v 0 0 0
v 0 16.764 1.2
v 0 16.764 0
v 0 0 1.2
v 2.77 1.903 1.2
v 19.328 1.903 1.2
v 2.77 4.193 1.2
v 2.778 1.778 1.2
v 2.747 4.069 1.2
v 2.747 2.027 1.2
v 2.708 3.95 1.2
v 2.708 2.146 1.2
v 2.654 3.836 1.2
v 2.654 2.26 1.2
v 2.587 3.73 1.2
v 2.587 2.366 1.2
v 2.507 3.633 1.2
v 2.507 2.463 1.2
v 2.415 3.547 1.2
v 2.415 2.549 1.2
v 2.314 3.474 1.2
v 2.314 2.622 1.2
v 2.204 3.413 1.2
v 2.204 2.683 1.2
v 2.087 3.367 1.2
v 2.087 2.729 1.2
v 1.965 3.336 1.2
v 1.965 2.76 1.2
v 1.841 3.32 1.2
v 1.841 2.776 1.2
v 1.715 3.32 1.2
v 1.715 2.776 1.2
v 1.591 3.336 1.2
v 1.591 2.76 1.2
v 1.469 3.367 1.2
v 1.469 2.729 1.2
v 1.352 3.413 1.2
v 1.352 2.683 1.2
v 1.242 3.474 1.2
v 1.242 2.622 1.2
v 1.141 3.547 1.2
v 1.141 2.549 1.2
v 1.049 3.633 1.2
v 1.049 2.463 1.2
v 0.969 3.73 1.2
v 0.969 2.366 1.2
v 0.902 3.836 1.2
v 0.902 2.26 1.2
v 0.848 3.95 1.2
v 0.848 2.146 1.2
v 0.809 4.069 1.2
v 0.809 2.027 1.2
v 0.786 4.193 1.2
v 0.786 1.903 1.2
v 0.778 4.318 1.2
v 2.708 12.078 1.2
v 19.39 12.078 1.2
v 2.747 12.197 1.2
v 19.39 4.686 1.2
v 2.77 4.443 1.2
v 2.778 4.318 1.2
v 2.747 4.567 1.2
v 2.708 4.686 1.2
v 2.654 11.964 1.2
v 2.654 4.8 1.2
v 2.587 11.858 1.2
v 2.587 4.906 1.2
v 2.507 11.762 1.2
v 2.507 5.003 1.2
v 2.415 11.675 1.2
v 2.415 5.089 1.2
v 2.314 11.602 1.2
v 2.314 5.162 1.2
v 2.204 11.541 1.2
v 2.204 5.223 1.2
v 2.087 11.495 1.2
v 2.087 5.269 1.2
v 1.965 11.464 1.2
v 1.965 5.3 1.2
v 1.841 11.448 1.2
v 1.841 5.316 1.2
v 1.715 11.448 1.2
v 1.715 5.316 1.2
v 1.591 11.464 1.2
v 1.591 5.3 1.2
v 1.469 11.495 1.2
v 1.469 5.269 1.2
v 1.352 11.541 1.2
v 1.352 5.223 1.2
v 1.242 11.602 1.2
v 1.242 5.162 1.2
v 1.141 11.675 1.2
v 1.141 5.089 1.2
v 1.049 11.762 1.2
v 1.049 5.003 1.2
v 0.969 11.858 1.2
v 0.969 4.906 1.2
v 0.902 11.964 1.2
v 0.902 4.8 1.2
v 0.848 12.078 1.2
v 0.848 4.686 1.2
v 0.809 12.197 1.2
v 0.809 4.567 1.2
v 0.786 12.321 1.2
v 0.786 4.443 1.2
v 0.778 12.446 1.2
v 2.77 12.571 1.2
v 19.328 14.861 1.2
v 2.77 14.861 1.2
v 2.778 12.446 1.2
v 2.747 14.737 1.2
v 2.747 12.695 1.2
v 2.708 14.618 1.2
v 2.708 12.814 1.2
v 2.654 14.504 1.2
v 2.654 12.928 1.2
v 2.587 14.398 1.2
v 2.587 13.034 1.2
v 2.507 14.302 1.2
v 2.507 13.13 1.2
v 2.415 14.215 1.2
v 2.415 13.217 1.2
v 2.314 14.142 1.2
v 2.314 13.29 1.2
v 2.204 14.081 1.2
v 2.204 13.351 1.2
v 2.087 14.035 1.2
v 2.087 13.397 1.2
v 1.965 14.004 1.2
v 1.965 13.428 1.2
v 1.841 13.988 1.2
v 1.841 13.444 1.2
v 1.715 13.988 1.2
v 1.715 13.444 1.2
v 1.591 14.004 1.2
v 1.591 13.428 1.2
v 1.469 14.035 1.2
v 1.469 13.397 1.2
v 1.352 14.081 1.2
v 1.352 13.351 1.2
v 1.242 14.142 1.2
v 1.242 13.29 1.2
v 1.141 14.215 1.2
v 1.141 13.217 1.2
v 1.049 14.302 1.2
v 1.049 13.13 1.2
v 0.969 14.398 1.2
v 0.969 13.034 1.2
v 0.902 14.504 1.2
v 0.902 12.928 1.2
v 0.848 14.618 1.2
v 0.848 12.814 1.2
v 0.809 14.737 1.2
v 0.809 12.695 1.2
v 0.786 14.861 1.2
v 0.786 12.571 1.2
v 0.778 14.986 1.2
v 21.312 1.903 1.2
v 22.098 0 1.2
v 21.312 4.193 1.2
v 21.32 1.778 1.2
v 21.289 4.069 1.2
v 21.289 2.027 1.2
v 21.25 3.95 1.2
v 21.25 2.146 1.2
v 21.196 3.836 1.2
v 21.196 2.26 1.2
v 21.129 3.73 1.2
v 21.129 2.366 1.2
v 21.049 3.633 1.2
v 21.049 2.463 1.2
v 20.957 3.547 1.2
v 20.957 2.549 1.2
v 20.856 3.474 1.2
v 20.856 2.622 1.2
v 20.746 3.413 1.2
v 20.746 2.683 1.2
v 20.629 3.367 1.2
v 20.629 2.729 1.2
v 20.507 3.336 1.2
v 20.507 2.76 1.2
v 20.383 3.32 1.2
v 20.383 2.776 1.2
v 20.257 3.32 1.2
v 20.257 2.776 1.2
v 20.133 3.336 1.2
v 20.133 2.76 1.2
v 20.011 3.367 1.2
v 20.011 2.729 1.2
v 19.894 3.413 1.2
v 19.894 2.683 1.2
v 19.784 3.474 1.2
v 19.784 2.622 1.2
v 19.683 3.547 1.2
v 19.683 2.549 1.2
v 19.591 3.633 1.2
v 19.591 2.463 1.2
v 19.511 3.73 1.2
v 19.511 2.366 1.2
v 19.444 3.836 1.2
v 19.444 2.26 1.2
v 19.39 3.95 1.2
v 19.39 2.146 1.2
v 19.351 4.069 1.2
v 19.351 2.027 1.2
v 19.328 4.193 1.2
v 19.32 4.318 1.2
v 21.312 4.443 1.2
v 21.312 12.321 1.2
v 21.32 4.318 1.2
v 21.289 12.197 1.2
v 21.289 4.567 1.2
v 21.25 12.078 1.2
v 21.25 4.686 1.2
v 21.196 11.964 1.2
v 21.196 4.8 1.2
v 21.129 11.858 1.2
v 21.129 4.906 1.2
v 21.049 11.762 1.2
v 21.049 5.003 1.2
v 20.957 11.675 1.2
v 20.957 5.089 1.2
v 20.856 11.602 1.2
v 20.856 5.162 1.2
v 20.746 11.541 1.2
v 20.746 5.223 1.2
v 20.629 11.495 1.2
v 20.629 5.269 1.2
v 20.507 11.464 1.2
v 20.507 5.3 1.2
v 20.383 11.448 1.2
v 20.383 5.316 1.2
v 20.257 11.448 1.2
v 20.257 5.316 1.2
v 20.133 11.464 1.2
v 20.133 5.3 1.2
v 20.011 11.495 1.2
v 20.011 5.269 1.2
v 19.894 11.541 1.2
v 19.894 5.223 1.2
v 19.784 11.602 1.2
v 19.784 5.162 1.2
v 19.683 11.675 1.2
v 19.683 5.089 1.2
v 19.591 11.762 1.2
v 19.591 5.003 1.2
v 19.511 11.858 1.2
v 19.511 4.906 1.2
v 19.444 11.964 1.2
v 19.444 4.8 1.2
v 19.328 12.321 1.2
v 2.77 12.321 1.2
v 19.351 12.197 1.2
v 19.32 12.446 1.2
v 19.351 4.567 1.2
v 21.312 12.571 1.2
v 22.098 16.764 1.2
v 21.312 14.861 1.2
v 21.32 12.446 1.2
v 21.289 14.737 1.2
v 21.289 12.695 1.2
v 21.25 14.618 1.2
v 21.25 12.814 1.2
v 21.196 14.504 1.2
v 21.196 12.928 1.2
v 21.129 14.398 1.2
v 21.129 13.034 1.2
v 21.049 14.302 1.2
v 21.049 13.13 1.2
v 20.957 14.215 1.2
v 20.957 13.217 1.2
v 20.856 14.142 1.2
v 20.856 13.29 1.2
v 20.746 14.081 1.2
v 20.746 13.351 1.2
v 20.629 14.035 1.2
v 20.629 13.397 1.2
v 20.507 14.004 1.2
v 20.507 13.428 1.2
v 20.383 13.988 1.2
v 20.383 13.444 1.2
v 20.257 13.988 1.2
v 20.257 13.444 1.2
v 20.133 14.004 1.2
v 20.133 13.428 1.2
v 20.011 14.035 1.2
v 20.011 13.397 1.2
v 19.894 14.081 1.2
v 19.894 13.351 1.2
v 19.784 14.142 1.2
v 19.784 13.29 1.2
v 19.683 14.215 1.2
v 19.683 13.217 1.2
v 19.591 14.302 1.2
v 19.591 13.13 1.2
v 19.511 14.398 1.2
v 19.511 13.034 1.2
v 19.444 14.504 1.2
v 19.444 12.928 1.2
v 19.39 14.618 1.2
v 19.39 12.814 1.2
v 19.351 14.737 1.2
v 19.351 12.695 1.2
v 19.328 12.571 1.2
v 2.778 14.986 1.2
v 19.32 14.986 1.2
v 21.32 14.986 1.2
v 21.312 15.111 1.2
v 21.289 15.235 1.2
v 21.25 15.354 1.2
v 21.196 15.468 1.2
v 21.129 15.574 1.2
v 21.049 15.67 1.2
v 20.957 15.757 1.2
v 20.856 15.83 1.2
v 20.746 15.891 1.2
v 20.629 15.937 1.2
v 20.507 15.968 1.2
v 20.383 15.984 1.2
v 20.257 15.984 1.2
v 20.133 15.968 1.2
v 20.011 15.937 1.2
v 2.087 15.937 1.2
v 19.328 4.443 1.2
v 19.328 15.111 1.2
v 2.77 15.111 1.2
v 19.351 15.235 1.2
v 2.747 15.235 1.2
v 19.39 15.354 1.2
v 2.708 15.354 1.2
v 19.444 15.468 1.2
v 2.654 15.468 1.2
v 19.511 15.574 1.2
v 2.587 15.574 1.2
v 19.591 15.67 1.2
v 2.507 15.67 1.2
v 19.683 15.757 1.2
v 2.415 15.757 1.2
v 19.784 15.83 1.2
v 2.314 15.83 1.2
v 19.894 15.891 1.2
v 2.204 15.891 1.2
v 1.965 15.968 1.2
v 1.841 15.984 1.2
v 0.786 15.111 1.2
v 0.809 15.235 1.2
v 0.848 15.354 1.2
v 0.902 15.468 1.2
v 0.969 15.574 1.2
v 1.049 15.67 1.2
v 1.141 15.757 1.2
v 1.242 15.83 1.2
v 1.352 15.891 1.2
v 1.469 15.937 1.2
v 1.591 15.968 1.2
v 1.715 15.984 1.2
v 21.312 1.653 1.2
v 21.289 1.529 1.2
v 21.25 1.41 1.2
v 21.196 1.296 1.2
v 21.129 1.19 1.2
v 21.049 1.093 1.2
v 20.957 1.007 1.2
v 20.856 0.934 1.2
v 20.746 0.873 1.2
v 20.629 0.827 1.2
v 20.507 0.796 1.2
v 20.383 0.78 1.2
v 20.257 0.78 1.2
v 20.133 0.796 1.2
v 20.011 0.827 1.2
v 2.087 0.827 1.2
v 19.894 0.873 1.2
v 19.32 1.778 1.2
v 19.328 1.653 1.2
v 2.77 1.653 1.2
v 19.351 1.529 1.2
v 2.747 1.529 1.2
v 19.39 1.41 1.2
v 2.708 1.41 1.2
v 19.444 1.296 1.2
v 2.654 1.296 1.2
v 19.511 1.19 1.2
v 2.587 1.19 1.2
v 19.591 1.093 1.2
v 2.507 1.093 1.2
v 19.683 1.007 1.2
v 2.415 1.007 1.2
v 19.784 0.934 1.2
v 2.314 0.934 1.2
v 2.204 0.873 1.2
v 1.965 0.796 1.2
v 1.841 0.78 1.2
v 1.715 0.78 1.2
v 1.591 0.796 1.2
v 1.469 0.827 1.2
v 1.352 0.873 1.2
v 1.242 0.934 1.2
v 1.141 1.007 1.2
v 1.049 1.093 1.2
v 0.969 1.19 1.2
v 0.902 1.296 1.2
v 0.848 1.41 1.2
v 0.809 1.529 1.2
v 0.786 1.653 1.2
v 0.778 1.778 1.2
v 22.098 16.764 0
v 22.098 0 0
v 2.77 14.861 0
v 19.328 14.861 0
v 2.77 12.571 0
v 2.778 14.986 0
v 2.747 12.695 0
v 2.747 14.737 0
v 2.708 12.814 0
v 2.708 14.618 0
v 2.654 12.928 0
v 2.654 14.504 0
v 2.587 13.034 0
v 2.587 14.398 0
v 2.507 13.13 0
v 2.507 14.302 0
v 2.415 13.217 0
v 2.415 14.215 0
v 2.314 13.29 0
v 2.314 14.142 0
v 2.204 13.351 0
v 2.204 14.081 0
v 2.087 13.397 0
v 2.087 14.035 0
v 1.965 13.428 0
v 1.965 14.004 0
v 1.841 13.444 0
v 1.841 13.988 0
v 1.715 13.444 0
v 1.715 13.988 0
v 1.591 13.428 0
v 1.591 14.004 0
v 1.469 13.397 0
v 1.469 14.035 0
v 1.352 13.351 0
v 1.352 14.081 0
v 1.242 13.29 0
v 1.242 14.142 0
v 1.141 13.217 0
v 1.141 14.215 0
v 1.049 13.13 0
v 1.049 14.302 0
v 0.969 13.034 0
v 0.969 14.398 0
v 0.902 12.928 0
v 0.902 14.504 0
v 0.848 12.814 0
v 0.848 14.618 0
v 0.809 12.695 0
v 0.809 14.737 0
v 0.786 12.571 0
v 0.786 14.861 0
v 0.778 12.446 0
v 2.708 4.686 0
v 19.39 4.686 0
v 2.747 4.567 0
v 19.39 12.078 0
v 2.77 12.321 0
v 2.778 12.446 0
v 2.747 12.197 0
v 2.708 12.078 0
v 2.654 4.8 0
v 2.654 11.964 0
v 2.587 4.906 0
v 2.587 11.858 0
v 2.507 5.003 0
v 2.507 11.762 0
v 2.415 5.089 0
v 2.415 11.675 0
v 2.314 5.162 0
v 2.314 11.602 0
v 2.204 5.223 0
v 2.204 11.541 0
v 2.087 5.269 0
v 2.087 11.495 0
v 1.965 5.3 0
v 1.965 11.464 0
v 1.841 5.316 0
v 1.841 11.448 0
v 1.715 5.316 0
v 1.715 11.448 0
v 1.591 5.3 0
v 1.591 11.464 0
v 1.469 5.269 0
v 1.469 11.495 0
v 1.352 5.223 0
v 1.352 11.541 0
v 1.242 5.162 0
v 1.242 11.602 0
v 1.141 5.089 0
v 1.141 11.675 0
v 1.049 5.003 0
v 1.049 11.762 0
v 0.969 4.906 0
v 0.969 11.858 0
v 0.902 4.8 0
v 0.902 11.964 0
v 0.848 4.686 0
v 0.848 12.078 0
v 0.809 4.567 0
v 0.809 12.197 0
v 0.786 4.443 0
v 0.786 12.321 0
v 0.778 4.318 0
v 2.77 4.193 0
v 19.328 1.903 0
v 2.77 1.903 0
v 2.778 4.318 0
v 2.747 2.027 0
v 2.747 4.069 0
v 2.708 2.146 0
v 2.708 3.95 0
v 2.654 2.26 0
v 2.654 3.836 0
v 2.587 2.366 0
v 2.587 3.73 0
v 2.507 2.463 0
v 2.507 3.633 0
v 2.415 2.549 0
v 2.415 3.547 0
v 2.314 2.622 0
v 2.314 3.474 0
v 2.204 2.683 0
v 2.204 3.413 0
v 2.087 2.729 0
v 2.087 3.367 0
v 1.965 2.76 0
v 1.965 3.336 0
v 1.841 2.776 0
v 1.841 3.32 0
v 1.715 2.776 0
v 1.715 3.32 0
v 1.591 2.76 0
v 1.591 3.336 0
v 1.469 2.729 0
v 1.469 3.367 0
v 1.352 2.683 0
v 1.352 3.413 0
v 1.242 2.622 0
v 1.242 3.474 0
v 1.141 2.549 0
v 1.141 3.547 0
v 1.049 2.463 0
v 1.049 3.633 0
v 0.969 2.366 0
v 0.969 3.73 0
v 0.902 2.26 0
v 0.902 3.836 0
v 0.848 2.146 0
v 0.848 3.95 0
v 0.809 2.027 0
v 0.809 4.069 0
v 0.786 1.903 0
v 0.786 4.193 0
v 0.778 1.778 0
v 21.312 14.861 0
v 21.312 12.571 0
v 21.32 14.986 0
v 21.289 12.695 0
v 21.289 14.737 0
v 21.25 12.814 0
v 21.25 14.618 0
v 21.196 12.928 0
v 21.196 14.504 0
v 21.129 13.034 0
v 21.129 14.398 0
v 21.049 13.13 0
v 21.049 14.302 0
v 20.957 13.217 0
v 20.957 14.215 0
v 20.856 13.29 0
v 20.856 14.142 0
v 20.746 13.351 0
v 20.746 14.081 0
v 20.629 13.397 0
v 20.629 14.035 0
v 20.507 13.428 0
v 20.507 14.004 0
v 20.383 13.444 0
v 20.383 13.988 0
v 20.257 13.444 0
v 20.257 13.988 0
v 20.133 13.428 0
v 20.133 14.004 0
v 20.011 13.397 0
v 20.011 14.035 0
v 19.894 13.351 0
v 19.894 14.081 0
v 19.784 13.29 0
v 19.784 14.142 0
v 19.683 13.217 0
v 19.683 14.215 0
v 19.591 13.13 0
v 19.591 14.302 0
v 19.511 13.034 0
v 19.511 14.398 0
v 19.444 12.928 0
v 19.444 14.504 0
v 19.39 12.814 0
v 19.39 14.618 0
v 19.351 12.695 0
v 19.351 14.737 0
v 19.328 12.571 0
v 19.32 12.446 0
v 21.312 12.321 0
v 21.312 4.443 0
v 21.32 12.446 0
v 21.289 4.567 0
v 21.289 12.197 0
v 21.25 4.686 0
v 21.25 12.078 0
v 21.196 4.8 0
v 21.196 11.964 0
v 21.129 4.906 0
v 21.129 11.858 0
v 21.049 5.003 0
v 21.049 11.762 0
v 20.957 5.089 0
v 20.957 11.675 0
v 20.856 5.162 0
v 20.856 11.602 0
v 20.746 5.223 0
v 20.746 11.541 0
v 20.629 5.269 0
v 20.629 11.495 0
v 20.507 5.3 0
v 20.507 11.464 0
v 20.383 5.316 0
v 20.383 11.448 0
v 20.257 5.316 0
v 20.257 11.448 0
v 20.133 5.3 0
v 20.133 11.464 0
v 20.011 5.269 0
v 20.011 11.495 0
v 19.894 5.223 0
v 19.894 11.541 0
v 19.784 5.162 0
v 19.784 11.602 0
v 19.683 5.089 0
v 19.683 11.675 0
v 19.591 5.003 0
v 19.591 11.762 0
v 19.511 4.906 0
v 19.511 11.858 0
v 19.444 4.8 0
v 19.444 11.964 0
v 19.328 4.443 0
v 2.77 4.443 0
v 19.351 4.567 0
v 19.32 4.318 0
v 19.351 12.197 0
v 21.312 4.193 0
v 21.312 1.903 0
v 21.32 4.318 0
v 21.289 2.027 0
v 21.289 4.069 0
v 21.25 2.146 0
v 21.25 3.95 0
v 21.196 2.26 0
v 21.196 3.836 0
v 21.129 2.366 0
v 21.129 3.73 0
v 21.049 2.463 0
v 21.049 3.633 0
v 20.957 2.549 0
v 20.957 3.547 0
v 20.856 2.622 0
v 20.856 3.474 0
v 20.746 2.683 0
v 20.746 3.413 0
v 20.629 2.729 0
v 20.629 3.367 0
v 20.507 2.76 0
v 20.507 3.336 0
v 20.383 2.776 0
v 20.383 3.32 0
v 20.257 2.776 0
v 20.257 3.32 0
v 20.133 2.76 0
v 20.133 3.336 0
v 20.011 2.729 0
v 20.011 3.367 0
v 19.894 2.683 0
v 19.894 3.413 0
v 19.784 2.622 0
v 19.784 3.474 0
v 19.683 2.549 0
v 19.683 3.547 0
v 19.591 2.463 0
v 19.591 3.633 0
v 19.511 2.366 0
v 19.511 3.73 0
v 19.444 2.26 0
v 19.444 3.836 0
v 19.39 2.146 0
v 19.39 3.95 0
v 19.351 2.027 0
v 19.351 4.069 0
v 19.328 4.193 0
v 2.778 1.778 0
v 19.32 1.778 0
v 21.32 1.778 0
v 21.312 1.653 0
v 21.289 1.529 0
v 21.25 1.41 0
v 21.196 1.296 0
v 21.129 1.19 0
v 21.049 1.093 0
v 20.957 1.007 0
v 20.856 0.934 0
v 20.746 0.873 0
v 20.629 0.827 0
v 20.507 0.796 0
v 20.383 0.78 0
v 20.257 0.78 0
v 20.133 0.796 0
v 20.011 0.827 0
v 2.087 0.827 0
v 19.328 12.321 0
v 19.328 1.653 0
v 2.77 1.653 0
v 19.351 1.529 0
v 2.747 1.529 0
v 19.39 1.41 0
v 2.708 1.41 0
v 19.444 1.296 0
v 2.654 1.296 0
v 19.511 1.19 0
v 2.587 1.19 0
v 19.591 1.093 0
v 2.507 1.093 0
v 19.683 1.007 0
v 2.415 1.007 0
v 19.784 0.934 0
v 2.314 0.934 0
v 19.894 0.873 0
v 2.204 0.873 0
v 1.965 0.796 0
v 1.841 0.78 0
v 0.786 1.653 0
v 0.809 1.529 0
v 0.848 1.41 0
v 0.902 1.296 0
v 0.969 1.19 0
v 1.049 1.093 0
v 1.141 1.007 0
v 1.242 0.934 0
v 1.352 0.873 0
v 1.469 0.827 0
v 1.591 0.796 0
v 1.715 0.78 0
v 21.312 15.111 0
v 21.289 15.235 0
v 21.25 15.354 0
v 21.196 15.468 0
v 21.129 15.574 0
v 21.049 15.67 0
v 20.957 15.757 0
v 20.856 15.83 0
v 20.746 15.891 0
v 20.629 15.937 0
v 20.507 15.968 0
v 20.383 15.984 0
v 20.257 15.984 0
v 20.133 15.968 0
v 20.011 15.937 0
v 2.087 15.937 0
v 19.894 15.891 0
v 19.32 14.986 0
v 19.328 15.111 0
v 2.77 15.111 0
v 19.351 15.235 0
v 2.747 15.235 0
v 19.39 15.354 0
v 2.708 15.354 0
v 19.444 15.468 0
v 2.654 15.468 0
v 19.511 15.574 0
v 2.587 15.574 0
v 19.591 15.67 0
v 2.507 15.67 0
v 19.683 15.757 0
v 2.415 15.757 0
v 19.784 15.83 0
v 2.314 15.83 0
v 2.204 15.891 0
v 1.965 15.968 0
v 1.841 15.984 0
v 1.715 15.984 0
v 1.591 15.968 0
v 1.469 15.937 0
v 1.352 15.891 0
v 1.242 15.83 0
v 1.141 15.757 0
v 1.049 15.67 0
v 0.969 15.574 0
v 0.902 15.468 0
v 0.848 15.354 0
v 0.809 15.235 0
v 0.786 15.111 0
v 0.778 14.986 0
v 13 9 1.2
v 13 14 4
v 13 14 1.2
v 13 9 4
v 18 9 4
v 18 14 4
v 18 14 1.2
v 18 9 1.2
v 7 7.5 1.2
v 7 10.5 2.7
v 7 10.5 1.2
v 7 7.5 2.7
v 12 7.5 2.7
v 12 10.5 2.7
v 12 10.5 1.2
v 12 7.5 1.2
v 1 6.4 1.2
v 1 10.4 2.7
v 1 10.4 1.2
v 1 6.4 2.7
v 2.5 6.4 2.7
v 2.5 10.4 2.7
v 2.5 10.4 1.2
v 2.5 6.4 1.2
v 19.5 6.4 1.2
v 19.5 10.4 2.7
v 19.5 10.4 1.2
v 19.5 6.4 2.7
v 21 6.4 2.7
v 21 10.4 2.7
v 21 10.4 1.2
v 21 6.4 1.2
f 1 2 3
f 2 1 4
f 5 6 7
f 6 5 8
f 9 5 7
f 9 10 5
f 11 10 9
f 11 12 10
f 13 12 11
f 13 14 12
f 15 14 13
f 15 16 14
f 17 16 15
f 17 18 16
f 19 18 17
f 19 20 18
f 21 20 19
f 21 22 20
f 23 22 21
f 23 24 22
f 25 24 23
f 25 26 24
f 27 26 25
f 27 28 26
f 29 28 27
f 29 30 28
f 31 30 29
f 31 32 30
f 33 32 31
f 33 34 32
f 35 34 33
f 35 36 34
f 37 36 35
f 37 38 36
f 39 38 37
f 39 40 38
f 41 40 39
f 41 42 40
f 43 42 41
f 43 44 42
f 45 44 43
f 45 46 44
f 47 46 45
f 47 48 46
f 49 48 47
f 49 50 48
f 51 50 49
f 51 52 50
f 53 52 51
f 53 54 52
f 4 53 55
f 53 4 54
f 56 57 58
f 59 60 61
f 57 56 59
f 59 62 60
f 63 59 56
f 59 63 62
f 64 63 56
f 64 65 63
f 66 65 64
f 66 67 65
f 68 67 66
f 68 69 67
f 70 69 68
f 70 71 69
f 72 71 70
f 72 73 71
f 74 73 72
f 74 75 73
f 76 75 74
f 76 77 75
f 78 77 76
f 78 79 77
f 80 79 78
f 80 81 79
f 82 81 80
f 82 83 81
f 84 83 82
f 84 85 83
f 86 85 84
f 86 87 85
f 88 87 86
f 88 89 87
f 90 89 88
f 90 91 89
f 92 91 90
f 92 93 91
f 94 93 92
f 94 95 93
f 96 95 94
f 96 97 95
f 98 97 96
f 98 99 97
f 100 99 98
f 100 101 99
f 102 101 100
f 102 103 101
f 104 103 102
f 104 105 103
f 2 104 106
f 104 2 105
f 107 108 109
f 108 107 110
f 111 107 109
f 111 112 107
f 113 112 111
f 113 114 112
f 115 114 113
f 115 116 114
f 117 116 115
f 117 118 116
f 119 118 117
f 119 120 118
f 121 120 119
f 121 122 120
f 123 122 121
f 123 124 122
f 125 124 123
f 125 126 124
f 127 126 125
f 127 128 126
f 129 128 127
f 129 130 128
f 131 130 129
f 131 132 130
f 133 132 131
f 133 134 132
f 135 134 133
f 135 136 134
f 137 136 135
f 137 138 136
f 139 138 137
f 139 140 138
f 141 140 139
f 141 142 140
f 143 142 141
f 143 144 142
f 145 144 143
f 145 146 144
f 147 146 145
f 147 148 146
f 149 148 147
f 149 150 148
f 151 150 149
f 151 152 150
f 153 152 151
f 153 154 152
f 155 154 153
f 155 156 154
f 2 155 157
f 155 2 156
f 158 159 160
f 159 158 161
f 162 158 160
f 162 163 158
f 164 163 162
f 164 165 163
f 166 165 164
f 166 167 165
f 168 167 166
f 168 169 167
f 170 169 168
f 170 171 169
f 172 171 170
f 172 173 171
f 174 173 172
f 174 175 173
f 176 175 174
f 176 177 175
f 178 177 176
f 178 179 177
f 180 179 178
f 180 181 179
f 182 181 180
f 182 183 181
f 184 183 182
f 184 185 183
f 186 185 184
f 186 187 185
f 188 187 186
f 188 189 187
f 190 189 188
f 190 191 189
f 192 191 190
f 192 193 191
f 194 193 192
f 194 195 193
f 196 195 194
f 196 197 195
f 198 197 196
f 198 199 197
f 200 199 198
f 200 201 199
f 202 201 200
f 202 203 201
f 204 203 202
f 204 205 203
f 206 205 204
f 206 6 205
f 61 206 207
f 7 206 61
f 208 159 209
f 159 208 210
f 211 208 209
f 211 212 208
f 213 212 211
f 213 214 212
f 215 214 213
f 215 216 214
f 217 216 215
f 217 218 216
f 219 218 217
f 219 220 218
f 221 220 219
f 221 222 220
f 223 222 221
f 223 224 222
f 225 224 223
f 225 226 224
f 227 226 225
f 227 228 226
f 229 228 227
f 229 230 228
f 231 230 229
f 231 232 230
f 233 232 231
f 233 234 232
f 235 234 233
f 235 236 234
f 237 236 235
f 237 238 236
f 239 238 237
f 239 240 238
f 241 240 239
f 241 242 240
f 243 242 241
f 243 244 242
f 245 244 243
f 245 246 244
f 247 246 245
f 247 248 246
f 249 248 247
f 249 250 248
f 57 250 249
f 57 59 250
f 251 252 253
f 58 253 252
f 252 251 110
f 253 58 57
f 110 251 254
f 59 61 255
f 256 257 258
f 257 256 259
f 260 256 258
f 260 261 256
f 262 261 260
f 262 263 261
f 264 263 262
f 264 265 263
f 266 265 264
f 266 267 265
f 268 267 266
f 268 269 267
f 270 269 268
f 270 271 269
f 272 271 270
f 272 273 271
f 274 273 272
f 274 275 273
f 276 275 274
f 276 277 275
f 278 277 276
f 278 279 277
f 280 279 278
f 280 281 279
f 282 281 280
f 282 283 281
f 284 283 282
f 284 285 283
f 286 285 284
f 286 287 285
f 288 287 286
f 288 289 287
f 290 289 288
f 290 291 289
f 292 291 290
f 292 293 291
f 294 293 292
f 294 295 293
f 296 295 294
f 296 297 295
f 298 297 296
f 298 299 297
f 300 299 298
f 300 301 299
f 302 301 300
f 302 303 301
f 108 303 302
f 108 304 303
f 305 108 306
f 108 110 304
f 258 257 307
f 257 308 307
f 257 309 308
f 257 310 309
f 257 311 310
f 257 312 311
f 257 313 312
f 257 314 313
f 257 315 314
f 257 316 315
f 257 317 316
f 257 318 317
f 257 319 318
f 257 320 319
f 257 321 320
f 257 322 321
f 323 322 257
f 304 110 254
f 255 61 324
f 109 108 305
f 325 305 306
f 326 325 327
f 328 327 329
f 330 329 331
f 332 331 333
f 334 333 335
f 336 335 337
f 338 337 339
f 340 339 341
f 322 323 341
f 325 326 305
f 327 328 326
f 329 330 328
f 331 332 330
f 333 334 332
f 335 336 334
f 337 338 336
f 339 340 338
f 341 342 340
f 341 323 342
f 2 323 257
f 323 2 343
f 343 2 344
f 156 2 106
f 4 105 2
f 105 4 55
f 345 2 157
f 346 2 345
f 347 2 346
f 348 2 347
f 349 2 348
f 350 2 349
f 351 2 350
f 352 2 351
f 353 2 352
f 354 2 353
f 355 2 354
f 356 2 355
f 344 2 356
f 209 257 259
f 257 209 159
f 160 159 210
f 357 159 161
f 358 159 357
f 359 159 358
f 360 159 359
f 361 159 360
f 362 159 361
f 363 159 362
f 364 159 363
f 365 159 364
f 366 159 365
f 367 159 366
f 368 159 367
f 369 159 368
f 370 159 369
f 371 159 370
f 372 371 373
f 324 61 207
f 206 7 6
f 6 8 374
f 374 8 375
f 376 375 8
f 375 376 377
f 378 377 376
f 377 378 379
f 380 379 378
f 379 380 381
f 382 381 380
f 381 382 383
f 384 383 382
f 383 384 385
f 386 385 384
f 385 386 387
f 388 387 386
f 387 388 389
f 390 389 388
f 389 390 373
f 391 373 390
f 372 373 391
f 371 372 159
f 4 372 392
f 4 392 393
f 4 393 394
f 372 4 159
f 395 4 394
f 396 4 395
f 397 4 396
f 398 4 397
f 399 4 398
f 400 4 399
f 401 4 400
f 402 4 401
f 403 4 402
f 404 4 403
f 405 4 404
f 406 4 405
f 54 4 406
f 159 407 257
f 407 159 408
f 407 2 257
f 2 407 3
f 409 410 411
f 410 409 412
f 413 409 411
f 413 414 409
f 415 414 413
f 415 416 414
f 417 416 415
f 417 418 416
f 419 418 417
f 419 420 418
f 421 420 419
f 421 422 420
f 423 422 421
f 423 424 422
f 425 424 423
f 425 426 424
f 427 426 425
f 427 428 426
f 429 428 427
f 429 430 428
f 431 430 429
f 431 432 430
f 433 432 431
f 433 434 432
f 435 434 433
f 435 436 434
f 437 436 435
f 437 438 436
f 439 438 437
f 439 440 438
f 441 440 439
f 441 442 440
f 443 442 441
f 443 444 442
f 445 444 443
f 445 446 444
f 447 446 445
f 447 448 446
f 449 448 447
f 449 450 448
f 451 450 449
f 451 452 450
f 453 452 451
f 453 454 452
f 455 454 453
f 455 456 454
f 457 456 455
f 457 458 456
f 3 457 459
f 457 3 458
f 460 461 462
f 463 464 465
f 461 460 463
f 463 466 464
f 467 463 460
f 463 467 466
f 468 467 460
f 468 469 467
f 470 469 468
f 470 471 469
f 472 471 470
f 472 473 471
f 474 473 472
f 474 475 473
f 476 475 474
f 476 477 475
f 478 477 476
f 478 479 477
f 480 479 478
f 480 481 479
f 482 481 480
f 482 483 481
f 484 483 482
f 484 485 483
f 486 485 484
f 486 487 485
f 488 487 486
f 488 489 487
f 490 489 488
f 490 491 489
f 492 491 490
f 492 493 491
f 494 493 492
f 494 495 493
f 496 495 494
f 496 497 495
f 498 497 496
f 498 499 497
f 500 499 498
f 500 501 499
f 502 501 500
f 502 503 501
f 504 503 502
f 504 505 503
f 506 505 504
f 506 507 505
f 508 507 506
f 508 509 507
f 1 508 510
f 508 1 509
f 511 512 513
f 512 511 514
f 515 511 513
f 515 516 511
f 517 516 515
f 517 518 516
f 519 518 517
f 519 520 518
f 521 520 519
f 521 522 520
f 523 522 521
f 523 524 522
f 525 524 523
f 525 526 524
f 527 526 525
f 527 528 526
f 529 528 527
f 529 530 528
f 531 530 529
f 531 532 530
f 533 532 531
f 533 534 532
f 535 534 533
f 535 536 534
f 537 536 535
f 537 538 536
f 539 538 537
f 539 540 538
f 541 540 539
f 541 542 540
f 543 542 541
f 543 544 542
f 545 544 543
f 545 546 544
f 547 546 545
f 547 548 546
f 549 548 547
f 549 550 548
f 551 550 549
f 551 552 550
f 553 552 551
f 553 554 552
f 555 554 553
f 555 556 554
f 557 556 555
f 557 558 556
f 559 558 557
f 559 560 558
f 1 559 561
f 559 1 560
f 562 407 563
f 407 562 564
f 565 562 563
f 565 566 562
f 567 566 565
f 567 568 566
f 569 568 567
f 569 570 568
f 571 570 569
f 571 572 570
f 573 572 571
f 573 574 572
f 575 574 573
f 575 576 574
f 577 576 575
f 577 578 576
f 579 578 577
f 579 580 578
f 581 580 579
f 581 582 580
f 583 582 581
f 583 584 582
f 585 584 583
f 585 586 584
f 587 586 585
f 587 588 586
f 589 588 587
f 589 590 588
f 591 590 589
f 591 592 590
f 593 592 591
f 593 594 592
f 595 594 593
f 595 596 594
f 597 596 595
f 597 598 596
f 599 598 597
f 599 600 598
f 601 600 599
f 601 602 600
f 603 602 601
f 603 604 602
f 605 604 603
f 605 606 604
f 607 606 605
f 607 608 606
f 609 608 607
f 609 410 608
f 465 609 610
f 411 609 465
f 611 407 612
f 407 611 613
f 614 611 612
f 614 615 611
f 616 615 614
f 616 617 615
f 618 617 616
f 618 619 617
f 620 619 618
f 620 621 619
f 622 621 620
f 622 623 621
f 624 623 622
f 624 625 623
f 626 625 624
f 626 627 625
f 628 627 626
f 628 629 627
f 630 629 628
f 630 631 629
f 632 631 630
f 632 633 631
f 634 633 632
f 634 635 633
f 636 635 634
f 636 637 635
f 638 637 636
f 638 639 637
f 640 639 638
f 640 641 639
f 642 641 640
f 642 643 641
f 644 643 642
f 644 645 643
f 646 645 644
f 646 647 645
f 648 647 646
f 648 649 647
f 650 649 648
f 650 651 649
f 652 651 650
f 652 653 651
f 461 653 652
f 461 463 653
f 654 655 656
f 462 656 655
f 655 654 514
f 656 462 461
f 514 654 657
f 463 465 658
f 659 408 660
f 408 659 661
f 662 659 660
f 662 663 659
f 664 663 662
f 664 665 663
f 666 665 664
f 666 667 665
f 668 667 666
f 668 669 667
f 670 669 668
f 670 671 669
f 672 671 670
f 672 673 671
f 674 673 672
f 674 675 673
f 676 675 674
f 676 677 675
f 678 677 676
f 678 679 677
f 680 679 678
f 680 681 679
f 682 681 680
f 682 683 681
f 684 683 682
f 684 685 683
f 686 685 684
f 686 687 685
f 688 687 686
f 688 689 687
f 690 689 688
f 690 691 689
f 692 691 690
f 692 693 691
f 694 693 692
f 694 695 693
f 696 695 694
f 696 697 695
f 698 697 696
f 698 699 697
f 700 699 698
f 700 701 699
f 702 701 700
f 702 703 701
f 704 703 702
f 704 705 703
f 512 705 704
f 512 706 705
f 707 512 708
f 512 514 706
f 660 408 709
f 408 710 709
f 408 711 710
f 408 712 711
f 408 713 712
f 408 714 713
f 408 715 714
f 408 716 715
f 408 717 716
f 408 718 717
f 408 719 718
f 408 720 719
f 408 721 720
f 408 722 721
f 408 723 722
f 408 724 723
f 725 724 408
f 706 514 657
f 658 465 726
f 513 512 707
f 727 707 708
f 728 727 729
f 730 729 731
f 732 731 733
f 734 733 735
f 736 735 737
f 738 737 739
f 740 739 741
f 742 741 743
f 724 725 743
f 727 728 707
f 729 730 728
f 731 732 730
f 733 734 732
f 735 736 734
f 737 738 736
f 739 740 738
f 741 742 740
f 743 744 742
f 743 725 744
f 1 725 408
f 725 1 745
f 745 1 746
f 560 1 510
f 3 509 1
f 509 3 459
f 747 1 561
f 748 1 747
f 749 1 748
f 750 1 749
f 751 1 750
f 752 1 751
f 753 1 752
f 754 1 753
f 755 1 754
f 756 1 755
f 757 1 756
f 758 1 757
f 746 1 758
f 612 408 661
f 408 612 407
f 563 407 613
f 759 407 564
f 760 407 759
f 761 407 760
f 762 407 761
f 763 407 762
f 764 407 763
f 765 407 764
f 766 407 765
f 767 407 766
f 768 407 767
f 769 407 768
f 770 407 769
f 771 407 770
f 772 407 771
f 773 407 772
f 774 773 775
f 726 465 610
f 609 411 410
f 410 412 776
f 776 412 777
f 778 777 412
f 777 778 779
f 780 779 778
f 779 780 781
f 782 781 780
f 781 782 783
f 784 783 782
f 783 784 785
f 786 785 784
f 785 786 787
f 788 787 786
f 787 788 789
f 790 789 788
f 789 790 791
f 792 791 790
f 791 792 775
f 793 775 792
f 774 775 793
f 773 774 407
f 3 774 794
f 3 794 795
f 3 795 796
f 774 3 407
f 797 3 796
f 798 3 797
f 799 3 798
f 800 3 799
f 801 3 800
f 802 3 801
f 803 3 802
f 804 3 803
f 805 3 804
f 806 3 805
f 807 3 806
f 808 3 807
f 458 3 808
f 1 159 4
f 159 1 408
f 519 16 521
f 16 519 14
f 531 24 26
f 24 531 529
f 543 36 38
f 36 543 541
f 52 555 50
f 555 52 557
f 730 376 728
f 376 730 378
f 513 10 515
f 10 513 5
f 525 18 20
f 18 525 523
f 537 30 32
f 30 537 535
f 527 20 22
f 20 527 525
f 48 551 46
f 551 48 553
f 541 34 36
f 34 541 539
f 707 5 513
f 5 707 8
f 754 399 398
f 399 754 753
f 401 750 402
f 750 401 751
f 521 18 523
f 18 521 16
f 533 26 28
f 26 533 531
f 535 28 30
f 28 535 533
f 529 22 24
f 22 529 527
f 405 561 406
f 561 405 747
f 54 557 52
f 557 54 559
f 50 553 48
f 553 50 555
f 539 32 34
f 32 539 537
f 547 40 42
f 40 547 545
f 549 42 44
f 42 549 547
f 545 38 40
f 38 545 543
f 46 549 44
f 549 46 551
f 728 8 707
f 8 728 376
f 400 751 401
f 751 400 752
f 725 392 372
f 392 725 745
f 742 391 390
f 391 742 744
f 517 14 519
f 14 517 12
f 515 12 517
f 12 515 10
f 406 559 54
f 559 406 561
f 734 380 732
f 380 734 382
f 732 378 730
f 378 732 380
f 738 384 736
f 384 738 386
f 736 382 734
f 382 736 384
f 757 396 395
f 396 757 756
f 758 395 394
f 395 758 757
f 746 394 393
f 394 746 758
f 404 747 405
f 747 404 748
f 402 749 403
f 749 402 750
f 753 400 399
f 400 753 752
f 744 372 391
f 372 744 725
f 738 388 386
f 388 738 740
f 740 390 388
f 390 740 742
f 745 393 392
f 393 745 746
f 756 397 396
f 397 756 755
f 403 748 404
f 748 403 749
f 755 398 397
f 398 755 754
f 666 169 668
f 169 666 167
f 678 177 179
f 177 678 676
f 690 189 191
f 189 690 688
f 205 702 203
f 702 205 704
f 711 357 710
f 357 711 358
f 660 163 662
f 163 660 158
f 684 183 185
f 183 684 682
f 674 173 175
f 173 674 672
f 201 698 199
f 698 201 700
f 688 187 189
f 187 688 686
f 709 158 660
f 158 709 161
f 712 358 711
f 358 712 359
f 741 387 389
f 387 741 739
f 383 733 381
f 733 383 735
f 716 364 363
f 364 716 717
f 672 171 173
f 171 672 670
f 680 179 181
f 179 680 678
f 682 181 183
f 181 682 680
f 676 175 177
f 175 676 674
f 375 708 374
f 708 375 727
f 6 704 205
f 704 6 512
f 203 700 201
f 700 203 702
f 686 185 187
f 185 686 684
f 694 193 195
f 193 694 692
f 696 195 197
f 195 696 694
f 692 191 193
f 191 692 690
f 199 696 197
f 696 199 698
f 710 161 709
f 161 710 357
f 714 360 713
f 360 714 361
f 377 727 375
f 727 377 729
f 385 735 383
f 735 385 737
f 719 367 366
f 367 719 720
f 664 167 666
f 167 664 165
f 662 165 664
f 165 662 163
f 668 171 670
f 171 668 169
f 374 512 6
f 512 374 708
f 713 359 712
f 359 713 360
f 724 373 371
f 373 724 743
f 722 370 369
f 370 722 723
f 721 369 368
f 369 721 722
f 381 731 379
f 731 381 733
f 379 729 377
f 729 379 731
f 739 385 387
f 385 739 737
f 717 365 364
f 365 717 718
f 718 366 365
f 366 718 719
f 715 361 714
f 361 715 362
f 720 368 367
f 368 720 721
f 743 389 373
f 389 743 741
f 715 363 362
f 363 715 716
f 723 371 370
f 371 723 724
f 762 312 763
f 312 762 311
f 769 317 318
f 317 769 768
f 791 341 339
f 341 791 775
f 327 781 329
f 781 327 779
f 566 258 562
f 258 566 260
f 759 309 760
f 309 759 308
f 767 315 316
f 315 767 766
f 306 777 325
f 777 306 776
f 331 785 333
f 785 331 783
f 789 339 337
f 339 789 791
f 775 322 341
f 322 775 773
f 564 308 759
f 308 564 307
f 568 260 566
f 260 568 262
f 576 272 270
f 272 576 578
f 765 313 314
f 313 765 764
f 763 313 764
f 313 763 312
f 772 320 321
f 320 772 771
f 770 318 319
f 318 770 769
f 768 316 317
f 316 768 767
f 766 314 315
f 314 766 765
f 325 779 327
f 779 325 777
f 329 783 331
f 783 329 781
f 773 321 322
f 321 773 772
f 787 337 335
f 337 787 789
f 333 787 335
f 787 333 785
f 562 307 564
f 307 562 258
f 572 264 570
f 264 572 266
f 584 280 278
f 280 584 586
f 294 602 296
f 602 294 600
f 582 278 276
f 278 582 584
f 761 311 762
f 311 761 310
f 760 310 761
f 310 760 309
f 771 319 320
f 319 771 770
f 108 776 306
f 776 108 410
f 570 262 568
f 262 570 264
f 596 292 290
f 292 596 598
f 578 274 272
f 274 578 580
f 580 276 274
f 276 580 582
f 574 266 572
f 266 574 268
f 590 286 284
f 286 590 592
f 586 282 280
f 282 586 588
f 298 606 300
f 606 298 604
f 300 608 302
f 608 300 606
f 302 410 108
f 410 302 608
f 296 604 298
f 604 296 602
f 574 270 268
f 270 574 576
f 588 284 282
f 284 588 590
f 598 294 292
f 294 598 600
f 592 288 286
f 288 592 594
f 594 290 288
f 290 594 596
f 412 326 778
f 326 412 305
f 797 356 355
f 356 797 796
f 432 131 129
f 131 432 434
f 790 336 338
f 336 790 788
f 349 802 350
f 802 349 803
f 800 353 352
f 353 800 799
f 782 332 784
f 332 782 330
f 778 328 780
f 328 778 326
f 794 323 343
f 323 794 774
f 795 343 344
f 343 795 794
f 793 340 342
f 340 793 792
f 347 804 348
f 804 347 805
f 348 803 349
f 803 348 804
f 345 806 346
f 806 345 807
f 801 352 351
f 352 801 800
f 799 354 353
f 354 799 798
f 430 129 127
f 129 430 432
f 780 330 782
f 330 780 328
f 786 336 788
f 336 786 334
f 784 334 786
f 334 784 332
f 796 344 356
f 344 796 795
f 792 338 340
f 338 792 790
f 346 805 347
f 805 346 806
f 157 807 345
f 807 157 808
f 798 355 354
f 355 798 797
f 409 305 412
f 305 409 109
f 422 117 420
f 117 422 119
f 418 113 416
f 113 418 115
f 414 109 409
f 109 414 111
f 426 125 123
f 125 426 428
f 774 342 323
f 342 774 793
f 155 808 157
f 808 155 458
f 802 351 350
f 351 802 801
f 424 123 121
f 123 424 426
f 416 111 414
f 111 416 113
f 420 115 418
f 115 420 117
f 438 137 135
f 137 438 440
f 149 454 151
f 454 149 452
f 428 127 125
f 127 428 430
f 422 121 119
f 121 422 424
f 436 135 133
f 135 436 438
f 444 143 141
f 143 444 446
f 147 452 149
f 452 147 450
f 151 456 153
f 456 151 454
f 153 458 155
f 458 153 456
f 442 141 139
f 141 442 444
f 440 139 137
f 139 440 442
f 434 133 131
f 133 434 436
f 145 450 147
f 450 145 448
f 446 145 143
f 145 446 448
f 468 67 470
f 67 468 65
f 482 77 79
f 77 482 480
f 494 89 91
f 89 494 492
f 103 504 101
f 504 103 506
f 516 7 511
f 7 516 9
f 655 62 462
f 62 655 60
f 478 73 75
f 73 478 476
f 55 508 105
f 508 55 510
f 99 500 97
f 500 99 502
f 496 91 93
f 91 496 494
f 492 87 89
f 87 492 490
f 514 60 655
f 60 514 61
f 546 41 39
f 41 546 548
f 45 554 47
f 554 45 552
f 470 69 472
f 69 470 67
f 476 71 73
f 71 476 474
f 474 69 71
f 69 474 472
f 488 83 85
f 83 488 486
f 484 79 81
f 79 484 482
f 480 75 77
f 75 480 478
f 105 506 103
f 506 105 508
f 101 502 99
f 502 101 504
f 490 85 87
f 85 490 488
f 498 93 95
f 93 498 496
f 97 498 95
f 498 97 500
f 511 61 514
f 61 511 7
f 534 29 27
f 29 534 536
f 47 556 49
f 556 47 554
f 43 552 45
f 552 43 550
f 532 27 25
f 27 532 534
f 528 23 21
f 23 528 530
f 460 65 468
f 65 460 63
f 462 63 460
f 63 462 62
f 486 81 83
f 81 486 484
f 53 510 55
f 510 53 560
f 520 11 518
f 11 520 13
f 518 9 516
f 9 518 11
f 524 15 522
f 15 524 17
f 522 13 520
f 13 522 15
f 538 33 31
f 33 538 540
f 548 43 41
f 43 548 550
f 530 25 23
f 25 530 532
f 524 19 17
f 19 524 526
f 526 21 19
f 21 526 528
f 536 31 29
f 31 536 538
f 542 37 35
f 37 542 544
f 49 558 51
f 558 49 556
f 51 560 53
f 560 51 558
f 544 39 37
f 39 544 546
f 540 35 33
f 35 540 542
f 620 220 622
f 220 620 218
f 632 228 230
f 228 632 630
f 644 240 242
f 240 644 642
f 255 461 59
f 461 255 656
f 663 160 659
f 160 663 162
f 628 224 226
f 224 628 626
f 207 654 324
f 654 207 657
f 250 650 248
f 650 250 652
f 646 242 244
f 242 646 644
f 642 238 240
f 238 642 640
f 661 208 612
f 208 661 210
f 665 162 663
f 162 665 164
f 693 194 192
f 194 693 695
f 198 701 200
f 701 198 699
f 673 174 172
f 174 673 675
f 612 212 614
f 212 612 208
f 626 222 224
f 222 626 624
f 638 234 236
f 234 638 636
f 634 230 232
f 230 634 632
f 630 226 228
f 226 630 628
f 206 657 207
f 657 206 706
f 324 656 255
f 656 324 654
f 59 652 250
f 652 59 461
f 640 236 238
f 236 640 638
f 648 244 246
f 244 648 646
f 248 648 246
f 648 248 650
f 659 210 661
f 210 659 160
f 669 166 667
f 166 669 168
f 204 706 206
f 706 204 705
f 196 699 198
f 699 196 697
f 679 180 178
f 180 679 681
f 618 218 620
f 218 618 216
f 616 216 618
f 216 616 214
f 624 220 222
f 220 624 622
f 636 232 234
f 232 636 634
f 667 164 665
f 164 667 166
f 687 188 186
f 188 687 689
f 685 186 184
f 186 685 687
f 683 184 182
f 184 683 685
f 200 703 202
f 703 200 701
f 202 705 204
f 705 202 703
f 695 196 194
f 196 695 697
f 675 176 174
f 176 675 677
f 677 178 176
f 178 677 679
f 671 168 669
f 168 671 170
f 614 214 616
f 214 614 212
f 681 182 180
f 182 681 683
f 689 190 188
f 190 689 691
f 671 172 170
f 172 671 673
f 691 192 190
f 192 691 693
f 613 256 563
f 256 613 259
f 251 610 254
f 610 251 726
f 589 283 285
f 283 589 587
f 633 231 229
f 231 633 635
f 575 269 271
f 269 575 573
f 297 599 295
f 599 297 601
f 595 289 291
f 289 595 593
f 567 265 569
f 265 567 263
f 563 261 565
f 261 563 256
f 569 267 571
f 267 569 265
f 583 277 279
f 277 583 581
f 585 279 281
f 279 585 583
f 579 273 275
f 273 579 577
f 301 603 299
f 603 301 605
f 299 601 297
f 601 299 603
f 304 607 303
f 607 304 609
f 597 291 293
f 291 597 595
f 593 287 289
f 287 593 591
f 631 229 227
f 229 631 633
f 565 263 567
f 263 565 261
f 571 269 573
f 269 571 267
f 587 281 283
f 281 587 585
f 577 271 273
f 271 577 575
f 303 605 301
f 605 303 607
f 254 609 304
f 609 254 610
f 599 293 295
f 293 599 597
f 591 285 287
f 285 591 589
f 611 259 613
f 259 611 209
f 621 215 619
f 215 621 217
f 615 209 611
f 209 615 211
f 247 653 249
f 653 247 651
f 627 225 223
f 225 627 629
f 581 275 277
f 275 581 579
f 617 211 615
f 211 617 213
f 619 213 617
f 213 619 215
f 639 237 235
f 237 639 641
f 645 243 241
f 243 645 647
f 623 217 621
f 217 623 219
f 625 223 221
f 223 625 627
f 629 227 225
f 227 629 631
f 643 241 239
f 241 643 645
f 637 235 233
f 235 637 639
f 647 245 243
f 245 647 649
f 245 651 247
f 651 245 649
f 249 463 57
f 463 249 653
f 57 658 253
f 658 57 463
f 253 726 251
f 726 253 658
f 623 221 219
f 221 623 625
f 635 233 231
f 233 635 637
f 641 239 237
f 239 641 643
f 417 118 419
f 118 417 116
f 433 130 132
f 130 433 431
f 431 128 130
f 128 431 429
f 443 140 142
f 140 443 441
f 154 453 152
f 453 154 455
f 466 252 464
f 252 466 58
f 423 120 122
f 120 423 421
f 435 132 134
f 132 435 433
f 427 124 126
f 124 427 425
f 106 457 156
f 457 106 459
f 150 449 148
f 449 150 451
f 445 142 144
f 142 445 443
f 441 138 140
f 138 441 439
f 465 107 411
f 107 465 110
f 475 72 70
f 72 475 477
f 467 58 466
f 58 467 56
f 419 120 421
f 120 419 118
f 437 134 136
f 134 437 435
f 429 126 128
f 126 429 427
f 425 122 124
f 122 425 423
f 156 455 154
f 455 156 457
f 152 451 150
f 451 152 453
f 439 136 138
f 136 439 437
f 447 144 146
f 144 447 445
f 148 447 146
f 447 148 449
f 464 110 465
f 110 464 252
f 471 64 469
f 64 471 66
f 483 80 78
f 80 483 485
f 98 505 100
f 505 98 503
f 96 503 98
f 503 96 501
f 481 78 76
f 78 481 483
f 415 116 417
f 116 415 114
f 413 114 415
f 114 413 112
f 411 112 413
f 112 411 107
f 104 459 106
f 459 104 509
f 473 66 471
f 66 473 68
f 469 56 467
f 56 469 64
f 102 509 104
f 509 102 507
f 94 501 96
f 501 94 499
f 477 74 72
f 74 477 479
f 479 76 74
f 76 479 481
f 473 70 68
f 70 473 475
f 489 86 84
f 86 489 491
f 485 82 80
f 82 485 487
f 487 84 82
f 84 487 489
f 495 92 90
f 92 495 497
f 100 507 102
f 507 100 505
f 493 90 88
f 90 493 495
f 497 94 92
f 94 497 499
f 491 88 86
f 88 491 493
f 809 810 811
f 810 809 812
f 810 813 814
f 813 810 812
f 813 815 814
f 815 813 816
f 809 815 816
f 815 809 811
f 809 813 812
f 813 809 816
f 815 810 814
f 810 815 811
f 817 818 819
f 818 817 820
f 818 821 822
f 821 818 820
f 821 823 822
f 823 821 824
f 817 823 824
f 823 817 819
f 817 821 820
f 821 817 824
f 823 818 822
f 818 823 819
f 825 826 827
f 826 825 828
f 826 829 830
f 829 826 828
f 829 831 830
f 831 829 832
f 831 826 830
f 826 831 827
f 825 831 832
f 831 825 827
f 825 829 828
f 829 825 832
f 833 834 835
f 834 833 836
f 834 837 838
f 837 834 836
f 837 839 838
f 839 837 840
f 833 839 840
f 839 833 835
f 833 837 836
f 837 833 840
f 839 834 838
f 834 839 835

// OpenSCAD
$fn = 50;

w = 22.098;
h = 16.764;

module pin() {
    cylinder(h=2, r=1);
}

module pcb() {
    difference() {
        cube([22.098, 16.764, 1.2]);
        
        translate([1.778, 1.778]) pin();
        translate([w-1.778, 1.778]) pin();
        translate([w-1.778, h-1.778]) pin();
        translate([1.778, h-1.778]) pin();
        
        translate([1.778, 4.318]) pin();
        translate([w-1.778, 4.318]) pin();
        translate([w-1.778, h-4.318]) pin();
        translate([1.778, h-4.318]) pin();
    }
}

module parts() {
    translate([13, 9, 0])
        cube([5, 5, 2.8]);
    translate([7, 7.5, 0])
        cube([5, 3, 1.5]);
    translate([1, 6.4, 0])
        cube([1.5, 4, 1.5]);
    translate([19.5, 6.4, 0])
        cube([1.5, 4, 1.5]);
}

pcb();
translate([0, 0, 1.2]) parts();
